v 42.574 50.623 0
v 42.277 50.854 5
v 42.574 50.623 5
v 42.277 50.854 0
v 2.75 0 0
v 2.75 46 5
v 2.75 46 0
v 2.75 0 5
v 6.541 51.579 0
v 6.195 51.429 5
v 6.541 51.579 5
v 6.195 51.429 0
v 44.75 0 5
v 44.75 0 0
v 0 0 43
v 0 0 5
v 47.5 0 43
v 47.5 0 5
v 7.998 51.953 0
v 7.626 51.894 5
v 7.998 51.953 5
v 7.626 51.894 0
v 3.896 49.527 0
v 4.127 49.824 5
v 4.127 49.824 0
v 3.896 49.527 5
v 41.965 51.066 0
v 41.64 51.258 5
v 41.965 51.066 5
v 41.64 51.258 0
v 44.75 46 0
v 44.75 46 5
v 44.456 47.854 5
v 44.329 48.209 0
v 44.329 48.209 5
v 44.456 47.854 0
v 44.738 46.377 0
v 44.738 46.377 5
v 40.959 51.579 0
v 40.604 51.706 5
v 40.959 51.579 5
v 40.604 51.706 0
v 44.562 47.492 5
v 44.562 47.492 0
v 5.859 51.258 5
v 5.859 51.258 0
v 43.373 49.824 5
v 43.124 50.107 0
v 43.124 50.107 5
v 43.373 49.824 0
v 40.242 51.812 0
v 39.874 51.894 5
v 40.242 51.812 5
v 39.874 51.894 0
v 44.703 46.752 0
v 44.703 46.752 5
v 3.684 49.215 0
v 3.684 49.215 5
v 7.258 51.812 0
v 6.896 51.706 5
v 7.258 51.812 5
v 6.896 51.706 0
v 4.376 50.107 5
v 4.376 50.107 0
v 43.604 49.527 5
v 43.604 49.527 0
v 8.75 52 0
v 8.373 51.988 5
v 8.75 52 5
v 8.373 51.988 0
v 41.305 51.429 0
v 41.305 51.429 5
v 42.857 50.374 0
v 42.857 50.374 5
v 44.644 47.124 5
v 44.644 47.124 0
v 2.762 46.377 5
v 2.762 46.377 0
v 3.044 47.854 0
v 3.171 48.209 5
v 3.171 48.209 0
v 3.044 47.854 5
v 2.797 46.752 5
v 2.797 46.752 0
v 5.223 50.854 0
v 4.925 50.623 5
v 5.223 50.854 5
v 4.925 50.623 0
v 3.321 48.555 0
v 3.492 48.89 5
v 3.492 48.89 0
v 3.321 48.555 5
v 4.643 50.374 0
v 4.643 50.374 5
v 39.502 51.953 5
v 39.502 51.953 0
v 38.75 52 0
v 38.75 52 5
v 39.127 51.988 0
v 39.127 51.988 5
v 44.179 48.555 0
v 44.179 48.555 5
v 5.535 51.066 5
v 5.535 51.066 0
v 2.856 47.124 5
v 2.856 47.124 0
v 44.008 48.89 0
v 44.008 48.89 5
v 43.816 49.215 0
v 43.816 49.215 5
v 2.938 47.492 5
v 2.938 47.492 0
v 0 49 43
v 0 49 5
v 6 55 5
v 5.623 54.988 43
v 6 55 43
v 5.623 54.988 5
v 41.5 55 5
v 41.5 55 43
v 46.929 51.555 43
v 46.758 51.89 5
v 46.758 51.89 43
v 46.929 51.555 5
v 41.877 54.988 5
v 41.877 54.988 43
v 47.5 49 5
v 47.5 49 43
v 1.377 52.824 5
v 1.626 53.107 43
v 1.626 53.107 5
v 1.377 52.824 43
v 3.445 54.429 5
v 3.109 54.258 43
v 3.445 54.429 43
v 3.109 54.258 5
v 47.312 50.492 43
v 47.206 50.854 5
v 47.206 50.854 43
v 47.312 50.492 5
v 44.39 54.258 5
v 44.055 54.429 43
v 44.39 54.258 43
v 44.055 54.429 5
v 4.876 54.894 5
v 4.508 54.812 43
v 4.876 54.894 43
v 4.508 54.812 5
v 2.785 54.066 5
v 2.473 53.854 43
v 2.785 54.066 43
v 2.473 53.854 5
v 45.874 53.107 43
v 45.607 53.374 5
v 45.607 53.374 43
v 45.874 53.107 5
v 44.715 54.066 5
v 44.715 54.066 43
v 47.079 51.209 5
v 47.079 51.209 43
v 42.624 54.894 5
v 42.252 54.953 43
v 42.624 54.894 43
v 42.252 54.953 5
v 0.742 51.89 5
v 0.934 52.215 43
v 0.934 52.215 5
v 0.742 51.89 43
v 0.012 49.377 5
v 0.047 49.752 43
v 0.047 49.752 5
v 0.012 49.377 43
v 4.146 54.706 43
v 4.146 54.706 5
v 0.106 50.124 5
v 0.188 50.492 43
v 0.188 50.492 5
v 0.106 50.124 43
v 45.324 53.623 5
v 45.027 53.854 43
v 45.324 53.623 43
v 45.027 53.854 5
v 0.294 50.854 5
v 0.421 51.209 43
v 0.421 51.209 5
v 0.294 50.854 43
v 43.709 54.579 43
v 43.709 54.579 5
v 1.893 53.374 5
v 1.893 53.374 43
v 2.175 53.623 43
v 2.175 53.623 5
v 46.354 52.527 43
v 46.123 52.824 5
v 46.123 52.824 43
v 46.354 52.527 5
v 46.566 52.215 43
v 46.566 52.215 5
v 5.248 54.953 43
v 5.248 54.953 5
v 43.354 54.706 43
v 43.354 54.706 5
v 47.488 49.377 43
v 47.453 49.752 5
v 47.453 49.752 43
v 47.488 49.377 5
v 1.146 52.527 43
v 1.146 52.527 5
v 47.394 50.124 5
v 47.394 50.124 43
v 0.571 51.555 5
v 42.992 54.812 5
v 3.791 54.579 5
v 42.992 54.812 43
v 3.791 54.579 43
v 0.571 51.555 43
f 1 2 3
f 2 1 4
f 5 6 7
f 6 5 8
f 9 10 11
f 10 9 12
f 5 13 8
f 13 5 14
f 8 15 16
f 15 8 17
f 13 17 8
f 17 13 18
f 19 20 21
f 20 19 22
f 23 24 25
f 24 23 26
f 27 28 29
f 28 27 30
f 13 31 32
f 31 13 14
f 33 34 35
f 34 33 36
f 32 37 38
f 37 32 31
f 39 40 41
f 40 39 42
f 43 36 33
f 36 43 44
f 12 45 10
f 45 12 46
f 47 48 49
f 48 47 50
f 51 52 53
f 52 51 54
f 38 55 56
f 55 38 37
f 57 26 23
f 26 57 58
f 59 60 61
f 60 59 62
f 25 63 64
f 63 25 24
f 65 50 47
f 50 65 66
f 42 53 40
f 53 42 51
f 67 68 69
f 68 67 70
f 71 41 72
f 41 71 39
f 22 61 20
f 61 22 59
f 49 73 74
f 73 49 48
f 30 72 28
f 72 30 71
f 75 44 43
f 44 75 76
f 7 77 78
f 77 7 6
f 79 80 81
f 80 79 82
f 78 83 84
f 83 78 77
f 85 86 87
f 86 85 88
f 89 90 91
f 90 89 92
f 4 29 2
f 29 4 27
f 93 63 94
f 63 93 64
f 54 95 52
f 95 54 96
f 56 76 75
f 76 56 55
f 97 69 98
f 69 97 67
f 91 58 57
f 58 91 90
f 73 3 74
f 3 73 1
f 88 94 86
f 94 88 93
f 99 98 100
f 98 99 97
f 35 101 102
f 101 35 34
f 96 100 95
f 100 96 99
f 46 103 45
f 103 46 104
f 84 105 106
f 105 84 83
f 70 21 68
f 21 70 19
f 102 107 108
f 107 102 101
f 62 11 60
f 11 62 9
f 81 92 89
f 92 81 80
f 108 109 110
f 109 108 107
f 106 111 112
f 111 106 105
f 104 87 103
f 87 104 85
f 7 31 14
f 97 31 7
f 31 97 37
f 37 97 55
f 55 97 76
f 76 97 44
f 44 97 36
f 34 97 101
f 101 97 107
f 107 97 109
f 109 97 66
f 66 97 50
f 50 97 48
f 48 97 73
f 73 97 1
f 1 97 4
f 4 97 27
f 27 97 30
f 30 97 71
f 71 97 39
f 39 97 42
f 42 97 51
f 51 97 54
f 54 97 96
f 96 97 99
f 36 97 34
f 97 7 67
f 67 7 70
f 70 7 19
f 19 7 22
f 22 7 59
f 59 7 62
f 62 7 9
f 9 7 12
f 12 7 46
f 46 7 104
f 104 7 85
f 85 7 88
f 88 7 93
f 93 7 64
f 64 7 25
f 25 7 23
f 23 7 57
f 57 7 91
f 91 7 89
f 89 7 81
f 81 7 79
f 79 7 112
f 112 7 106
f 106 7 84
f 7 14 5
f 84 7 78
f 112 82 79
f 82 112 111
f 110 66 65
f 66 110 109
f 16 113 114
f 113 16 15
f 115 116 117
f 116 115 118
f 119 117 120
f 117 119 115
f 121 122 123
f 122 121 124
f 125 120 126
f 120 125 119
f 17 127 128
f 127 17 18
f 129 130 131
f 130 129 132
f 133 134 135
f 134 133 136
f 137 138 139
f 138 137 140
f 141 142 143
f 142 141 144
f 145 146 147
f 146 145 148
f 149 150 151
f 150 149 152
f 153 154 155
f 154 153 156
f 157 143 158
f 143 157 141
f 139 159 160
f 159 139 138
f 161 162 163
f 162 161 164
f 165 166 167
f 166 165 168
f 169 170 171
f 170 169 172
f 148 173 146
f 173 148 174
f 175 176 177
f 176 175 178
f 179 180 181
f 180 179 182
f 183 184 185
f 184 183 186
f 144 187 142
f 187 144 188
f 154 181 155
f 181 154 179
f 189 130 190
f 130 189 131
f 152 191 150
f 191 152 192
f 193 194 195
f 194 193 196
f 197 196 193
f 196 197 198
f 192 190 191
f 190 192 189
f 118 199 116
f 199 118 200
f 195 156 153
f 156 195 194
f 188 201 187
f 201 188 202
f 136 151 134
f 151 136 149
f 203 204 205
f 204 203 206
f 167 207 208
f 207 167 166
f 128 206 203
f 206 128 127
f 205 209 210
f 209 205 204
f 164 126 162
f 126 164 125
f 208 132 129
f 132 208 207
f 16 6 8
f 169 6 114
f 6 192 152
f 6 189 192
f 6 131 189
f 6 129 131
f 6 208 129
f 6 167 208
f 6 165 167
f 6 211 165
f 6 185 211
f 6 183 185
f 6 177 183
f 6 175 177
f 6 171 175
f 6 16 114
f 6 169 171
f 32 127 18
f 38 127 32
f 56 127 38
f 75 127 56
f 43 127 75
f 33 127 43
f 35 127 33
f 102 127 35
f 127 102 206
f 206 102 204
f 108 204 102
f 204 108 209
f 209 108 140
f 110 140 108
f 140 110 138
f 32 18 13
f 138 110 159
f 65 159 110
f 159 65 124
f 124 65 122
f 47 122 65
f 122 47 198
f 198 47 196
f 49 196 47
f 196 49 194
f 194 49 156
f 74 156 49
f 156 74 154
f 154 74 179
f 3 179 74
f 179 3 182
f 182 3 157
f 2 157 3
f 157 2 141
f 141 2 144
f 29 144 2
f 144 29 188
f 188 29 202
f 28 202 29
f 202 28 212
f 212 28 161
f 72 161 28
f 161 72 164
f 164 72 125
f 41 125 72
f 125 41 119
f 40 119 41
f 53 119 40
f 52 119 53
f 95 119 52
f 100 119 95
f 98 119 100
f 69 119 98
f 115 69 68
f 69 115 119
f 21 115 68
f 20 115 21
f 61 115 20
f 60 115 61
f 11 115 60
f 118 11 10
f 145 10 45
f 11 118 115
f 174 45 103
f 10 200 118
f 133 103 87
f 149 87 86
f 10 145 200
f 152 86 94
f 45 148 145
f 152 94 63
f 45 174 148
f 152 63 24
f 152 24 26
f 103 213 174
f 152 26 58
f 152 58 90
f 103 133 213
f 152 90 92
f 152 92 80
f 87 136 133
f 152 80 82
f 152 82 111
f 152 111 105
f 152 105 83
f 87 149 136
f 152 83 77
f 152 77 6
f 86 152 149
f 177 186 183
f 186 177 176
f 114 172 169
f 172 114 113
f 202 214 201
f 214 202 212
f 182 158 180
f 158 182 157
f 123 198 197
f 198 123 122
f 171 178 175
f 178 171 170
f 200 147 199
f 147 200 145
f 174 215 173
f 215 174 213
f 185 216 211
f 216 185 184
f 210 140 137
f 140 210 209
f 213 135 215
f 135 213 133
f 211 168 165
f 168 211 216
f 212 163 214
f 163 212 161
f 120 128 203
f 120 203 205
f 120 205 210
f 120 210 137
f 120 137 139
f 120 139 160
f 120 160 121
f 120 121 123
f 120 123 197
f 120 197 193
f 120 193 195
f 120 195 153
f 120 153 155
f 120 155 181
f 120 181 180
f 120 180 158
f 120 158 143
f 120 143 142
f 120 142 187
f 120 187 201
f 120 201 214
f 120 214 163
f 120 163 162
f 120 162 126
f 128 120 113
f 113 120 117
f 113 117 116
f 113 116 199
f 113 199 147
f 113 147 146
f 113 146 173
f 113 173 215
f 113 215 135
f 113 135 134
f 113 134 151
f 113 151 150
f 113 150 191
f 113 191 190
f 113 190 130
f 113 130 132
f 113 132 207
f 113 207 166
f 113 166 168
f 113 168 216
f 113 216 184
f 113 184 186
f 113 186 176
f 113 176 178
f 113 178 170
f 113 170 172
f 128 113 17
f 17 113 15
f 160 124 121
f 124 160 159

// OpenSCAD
blockerBottomHeight = 5;
blockerTopHeight = 38;
farCornerRadius = 6;
bottomInset = 3;
$fn = 100;

module rrCylinder(width, length, height) {
  linear_extrude(height = height, center = false) hull() {
    square([width, 1]);
    translate([farCornerRadius, length - farCornerRadius, 0])
      circle(farCornerRadius);
    translate([width - farCornerRadius, length - farCornerRadius, 0])
      circle(farCornerRadius);
  }
}

module blocker(width, length) {
  topWidth = width - 0.5;
  bottomWidth = width - bottomInset * 2;
  union() {
    // bottom
    translate([(bottomInset * 2 - 0.5) / 2, 0, 0])
      rrCylinder(bottomWidth, length - bottomInset, blockerBottomHeight + 1);
    // top
    translate([0, 0, blockerBottomHeight])
      rrCylinder(topWidth, length, blockerTopHeight);
  }
}

// teaspoons
// blocker(48, 90);

// tablespoons
// blocker(48, 75);

// dinner forks
blocker(48, 55);

// salad forks
// blocker(50, 75);
